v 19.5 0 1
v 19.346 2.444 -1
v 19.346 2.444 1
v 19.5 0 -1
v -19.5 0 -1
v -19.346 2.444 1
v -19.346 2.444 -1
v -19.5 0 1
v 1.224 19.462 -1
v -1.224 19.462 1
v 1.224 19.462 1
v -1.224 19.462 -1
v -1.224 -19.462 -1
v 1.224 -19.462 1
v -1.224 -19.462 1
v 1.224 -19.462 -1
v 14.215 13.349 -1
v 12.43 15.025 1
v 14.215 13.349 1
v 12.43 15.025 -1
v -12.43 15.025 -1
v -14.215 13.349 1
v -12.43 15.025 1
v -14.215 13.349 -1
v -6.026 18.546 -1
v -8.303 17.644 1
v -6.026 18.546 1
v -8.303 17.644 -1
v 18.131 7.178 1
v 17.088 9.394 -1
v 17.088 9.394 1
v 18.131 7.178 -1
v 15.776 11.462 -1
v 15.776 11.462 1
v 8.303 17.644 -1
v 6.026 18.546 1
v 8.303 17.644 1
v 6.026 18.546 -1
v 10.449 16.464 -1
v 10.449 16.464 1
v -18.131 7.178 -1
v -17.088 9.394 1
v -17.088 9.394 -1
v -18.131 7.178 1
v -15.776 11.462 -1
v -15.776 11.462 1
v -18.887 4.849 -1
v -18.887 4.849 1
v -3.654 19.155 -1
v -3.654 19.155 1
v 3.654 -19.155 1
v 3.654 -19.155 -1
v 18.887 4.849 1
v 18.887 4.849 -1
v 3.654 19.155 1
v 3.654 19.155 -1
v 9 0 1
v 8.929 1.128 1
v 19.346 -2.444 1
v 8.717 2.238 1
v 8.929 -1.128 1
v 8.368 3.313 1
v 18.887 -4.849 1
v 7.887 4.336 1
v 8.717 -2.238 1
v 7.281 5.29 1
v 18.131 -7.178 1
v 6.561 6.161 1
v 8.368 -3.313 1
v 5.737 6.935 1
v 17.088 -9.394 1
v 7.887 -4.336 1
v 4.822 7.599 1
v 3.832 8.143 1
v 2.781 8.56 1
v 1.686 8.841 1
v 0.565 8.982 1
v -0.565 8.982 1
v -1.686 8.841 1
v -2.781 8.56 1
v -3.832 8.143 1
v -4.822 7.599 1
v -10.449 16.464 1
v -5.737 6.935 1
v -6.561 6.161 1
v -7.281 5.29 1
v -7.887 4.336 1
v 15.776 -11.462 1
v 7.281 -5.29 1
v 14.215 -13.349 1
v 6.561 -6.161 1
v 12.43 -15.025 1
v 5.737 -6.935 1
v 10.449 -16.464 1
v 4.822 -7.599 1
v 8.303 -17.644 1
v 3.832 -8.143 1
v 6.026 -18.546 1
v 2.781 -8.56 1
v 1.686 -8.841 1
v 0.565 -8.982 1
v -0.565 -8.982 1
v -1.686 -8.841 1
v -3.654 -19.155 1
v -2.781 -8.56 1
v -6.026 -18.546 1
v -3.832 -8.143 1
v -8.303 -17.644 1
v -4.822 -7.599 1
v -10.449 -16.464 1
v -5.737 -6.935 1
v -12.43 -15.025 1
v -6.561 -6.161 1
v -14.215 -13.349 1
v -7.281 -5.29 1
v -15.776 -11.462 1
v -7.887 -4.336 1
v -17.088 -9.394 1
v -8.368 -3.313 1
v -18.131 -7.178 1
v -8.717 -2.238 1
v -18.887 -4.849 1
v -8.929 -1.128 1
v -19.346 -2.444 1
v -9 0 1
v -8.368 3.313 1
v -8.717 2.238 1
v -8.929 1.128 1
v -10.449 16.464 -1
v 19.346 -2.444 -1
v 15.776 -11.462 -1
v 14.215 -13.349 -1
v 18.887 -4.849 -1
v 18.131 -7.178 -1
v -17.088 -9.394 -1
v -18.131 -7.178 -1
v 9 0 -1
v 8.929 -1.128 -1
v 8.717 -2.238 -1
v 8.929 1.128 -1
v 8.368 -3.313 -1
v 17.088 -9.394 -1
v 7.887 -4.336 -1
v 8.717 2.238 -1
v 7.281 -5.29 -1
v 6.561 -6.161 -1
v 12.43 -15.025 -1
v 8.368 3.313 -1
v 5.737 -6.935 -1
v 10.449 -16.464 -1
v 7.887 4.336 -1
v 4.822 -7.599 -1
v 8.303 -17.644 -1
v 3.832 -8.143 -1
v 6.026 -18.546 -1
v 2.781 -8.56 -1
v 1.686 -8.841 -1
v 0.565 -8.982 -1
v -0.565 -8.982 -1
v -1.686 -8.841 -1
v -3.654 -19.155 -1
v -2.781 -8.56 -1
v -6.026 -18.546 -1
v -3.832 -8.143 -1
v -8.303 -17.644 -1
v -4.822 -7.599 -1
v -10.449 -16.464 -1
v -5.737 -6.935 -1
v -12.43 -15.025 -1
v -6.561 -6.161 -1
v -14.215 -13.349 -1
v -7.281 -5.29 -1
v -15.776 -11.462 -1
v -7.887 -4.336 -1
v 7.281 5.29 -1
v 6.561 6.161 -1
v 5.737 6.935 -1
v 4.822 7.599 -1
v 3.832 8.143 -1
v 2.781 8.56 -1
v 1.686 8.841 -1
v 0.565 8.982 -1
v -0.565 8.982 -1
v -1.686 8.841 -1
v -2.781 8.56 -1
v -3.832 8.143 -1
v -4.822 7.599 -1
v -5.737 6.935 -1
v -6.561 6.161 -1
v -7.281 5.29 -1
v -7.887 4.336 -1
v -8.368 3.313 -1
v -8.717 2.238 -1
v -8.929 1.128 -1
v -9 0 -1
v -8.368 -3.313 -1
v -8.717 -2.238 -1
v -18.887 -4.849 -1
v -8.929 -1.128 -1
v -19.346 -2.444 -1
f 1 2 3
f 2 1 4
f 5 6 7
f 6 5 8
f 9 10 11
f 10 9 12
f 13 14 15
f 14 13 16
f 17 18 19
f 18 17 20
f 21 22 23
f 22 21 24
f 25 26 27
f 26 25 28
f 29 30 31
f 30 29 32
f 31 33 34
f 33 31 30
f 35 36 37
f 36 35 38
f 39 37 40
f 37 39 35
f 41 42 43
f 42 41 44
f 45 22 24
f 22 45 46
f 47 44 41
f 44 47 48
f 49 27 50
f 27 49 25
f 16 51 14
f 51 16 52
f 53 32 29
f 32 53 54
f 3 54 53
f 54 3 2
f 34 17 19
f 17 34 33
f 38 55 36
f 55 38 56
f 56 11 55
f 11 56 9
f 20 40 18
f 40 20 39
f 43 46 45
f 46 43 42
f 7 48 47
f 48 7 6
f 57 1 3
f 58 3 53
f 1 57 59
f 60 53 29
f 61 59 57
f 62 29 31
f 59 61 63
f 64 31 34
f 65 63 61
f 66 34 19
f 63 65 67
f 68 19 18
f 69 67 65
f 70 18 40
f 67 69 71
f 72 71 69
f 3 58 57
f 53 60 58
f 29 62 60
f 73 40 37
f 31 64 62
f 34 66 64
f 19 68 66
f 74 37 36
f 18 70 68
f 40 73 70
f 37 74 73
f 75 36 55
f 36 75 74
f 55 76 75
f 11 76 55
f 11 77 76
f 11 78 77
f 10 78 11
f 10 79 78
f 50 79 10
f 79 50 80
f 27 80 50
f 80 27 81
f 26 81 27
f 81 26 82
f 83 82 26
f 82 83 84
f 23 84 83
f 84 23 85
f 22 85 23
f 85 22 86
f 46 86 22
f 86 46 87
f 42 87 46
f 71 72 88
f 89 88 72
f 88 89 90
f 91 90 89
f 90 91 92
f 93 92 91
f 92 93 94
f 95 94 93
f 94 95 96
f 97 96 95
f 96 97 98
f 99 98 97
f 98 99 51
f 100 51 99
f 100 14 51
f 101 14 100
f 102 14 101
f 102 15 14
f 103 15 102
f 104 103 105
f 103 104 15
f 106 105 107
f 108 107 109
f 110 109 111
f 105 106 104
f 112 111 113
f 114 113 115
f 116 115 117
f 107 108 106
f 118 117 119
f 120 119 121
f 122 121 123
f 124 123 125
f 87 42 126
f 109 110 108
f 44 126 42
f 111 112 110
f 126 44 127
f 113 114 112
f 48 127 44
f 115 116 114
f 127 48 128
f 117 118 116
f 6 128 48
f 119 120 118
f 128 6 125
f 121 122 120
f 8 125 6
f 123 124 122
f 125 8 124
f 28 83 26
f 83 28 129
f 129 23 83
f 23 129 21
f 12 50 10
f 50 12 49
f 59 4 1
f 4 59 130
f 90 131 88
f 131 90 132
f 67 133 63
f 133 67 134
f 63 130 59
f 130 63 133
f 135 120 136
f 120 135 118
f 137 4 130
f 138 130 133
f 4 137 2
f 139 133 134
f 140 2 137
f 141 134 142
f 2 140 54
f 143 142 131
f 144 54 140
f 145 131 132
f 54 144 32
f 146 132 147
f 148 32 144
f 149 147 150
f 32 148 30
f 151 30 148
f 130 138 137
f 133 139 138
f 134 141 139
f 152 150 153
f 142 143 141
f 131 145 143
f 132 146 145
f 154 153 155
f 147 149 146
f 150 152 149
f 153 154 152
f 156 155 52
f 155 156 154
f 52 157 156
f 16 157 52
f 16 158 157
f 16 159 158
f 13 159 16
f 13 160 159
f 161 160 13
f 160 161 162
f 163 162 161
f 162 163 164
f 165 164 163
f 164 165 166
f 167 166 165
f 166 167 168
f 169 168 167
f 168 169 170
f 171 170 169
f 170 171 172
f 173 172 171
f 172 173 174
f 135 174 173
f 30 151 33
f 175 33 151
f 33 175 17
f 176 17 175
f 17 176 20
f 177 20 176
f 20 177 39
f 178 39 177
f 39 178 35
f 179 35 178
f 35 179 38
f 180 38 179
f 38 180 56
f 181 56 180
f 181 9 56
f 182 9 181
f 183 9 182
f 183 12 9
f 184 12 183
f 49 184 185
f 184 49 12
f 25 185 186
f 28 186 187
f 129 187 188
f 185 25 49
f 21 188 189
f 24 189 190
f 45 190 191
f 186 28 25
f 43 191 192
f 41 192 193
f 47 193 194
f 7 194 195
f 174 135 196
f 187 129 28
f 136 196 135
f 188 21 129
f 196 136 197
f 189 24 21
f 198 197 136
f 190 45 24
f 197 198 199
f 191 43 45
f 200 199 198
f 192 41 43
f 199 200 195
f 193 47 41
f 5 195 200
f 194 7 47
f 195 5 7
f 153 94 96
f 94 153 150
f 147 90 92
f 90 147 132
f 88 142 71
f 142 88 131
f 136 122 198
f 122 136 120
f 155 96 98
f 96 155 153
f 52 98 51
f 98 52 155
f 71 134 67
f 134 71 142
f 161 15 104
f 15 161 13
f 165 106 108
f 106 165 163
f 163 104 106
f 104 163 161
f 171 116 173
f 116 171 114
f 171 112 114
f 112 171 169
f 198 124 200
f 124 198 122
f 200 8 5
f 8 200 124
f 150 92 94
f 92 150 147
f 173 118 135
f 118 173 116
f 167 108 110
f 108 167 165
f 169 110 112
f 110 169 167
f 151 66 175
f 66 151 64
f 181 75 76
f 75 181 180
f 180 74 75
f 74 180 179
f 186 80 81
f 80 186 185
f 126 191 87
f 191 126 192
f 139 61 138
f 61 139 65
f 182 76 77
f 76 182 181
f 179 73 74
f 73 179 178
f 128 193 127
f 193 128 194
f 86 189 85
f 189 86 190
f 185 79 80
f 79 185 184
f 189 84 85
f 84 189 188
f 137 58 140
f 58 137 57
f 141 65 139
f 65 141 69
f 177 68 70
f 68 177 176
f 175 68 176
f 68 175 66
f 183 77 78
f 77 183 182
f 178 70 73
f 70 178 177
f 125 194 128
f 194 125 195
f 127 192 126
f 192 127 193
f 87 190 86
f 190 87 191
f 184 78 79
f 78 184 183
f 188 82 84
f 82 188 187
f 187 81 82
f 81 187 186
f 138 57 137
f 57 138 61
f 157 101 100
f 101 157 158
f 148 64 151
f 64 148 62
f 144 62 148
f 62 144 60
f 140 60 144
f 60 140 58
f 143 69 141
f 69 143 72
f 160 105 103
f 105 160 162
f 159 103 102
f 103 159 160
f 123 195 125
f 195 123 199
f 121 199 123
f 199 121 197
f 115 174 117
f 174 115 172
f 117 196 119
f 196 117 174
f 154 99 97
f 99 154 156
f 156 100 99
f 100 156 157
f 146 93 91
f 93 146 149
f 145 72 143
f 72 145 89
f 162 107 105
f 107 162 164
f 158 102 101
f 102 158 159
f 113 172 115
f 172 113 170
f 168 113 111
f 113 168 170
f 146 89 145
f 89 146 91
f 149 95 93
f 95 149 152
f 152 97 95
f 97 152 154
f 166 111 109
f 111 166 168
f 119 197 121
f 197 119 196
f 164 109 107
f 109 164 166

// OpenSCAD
$fn = 50;


difference() {
	union() {
		translate(v = [0, 0, -1.0000000000]) {
			cylinder(h = 2, r = 19.5000000000);
		}
	}
	union() {
		translate(v = [0, 0, -100.0000000000]) {
			cylinder(h = 200, r = 9);
		}
	}
}
